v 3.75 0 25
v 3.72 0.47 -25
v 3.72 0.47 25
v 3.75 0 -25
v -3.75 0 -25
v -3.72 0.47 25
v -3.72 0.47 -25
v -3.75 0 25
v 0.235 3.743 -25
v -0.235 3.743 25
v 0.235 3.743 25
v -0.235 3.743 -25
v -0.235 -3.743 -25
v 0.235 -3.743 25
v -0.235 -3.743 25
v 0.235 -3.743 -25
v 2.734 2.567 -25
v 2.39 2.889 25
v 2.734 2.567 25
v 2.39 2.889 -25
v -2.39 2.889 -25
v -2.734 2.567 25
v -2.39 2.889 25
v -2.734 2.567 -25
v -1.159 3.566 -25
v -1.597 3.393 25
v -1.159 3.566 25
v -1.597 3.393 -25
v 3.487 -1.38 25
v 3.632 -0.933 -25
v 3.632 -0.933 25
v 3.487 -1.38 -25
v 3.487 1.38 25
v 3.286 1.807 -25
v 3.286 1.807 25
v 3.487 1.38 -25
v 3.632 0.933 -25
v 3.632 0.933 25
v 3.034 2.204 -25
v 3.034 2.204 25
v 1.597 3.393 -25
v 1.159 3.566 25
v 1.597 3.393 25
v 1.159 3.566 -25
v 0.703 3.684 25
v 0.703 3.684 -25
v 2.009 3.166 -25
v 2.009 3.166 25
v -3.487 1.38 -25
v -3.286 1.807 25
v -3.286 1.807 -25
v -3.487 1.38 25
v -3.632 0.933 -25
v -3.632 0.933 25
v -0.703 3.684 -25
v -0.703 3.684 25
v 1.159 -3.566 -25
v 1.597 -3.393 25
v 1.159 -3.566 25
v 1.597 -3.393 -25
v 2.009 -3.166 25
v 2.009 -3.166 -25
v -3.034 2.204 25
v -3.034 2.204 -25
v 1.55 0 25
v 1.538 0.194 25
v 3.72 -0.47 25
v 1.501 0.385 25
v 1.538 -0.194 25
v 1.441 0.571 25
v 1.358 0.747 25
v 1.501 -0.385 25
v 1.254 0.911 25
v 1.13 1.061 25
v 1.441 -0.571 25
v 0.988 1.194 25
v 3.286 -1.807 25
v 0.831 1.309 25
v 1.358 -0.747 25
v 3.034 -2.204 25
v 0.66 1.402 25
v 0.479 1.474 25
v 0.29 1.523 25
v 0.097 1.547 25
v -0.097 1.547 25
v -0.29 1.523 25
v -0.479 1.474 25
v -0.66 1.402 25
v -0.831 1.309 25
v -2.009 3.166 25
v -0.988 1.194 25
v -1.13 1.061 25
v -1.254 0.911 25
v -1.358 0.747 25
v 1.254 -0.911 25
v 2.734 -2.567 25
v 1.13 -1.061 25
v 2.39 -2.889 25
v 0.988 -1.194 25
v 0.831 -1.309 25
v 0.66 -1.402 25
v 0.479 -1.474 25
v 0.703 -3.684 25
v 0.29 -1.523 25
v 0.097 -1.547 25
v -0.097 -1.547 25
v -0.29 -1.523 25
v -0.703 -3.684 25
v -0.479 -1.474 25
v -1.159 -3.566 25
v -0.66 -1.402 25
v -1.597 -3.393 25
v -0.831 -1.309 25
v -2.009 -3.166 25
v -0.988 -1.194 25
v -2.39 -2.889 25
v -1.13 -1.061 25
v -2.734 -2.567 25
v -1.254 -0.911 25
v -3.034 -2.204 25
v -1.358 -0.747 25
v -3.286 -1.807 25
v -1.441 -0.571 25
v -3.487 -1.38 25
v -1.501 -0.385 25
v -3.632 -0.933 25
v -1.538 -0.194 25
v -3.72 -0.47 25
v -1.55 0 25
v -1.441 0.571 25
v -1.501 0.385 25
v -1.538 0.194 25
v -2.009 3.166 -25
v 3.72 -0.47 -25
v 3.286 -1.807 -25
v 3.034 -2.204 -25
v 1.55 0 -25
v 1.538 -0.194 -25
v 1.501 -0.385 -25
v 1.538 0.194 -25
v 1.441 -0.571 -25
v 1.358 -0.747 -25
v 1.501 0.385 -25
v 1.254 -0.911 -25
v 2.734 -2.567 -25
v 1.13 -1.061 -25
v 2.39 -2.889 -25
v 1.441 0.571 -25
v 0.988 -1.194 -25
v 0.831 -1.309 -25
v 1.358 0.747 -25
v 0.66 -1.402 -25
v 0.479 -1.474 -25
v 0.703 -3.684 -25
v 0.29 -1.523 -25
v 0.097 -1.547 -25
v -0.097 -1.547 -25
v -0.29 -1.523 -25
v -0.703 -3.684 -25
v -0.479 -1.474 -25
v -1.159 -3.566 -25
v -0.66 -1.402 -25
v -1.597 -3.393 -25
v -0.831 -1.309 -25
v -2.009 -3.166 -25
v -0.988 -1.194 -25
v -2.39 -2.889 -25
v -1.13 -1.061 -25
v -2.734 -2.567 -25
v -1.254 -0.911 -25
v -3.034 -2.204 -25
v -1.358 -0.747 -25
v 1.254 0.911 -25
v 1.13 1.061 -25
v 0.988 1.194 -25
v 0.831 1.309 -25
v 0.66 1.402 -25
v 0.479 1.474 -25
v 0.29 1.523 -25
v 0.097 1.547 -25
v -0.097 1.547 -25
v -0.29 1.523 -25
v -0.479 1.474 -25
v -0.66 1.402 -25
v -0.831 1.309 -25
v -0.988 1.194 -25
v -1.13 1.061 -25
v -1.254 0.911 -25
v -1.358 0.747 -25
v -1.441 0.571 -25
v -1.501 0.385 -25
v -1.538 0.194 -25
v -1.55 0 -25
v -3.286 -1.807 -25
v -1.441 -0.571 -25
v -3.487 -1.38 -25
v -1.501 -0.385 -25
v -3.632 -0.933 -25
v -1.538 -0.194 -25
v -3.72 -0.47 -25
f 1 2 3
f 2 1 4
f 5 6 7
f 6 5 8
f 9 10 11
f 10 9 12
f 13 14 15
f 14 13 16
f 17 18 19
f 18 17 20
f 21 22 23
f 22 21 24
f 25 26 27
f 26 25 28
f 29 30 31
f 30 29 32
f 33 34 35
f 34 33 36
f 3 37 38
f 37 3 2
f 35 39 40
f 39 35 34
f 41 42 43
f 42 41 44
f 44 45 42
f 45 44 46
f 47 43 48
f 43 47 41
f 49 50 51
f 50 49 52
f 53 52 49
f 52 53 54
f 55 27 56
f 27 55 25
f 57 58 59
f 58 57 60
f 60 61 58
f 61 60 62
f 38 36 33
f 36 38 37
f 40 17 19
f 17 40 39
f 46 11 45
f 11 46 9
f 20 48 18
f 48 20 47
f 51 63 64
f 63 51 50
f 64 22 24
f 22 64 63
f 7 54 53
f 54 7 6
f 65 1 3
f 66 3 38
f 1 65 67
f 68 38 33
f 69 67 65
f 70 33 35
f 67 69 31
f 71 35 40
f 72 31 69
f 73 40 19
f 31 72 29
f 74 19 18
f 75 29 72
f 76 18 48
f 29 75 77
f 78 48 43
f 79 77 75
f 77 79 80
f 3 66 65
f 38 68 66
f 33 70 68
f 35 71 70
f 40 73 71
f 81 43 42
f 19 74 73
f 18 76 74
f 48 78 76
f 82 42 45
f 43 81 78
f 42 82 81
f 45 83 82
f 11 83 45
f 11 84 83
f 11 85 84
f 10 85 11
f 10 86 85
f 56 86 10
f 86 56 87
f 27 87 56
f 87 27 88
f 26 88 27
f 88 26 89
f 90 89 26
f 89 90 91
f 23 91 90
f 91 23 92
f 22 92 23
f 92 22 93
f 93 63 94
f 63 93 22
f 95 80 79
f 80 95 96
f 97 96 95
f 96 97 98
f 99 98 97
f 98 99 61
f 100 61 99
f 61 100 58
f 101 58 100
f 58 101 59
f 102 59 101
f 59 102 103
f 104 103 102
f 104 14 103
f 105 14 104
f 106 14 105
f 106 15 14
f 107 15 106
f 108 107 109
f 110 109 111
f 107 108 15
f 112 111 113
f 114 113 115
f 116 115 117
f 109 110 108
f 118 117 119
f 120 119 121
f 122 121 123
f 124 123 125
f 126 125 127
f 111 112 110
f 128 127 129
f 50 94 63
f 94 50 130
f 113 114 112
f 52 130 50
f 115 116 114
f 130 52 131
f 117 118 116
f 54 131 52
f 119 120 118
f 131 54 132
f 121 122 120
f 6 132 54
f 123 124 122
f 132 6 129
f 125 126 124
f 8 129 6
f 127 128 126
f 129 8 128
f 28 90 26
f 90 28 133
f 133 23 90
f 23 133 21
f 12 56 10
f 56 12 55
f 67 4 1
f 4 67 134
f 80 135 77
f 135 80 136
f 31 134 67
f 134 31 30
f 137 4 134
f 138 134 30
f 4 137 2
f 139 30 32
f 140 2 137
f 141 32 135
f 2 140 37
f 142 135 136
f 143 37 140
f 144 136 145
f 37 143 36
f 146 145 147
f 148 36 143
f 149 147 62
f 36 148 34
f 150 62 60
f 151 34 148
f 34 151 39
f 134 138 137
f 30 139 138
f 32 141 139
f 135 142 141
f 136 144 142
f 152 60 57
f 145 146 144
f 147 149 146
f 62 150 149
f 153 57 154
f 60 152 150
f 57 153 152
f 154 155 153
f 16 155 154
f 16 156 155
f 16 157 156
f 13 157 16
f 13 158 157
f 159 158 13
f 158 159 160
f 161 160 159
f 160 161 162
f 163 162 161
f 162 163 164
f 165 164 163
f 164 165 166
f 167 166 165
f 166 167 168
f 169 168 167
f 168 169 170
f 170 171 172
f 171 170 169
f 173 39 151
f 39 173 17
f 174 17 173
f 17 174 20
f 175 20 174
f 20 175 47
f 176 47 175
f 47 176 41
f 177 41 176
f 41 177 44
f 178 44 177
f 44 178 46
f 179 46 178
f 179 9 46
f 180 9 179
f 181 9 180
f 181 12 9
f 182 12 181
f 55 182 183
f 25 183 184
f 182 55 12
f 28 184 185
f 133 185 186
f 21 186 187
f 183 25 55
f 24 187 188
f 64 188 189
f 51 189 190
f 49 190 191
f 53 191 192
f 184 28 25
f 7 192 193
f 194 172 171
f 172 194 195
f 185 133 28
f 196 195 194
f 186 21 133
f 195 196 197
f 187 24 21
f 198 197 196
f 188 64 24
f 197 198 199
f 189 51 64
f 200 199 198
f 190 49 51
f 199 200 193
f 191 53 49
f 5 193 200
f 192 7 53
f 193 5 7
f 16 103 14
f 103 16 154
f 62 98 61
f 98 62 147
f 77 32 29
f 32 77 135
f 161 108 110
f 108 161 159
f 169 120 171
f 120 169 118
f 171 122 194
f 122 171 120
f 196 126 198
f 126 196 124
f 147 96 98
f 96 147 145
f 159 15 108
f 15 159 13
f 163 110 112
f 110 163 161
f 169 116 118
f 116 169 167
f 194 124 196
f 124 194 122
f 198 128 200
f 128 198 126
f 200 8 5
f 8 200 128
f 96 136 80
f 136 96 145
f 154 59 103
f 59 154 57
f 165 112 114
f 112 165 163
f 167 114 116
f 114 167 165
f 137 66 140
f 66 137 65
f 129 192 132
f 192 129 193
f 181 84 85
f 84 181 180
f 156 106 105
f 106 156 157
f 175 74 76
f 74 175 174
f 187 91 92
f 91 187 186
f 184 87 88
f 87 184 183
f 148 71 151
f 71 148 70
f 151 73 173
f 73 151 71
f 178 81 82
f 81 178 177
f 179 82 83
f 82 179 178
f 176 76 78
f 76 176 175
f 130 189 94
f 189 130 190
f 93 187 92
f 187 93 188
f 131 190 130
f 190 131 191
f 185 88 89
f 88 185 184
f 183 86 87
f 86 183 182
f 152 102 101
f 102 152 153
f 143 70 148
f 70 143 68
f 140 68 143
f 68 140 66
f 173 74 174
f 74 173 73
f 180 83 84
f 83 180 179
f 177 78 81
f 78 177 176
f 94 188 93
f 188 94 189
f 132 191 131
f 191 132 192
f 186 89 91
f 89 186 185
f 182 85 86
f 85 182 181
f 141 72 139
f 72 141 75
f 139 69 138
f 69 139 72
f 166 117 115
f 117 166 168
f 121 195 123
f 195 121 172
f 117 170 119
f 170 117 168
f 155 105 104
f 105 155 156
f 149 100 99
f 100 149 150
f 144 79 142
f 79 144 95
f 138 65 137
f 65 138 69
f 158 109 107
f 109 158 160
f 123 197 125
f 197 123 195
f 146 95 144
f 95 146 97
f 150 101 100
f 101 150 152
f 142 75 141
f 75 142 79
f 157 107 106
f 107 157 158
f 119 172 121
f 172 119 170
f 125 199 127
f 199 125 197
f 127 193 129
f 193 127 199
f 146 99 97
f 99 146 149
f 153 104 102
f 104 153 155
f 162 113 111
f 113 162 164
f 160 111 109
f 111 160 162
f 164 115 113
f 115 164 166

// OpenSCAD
$fn = 50;


difference() {
	union() {
		translate(v = [0, 0, -25.0000000000]) {
			cylinder(h = 50, r = 3.7500000000);
		}
	}
	union() {
		translate(v = [0, 0, -100.0000000000]) {
			cylinder(h = 200, r = 1.5500000000);
		}
	}
}
